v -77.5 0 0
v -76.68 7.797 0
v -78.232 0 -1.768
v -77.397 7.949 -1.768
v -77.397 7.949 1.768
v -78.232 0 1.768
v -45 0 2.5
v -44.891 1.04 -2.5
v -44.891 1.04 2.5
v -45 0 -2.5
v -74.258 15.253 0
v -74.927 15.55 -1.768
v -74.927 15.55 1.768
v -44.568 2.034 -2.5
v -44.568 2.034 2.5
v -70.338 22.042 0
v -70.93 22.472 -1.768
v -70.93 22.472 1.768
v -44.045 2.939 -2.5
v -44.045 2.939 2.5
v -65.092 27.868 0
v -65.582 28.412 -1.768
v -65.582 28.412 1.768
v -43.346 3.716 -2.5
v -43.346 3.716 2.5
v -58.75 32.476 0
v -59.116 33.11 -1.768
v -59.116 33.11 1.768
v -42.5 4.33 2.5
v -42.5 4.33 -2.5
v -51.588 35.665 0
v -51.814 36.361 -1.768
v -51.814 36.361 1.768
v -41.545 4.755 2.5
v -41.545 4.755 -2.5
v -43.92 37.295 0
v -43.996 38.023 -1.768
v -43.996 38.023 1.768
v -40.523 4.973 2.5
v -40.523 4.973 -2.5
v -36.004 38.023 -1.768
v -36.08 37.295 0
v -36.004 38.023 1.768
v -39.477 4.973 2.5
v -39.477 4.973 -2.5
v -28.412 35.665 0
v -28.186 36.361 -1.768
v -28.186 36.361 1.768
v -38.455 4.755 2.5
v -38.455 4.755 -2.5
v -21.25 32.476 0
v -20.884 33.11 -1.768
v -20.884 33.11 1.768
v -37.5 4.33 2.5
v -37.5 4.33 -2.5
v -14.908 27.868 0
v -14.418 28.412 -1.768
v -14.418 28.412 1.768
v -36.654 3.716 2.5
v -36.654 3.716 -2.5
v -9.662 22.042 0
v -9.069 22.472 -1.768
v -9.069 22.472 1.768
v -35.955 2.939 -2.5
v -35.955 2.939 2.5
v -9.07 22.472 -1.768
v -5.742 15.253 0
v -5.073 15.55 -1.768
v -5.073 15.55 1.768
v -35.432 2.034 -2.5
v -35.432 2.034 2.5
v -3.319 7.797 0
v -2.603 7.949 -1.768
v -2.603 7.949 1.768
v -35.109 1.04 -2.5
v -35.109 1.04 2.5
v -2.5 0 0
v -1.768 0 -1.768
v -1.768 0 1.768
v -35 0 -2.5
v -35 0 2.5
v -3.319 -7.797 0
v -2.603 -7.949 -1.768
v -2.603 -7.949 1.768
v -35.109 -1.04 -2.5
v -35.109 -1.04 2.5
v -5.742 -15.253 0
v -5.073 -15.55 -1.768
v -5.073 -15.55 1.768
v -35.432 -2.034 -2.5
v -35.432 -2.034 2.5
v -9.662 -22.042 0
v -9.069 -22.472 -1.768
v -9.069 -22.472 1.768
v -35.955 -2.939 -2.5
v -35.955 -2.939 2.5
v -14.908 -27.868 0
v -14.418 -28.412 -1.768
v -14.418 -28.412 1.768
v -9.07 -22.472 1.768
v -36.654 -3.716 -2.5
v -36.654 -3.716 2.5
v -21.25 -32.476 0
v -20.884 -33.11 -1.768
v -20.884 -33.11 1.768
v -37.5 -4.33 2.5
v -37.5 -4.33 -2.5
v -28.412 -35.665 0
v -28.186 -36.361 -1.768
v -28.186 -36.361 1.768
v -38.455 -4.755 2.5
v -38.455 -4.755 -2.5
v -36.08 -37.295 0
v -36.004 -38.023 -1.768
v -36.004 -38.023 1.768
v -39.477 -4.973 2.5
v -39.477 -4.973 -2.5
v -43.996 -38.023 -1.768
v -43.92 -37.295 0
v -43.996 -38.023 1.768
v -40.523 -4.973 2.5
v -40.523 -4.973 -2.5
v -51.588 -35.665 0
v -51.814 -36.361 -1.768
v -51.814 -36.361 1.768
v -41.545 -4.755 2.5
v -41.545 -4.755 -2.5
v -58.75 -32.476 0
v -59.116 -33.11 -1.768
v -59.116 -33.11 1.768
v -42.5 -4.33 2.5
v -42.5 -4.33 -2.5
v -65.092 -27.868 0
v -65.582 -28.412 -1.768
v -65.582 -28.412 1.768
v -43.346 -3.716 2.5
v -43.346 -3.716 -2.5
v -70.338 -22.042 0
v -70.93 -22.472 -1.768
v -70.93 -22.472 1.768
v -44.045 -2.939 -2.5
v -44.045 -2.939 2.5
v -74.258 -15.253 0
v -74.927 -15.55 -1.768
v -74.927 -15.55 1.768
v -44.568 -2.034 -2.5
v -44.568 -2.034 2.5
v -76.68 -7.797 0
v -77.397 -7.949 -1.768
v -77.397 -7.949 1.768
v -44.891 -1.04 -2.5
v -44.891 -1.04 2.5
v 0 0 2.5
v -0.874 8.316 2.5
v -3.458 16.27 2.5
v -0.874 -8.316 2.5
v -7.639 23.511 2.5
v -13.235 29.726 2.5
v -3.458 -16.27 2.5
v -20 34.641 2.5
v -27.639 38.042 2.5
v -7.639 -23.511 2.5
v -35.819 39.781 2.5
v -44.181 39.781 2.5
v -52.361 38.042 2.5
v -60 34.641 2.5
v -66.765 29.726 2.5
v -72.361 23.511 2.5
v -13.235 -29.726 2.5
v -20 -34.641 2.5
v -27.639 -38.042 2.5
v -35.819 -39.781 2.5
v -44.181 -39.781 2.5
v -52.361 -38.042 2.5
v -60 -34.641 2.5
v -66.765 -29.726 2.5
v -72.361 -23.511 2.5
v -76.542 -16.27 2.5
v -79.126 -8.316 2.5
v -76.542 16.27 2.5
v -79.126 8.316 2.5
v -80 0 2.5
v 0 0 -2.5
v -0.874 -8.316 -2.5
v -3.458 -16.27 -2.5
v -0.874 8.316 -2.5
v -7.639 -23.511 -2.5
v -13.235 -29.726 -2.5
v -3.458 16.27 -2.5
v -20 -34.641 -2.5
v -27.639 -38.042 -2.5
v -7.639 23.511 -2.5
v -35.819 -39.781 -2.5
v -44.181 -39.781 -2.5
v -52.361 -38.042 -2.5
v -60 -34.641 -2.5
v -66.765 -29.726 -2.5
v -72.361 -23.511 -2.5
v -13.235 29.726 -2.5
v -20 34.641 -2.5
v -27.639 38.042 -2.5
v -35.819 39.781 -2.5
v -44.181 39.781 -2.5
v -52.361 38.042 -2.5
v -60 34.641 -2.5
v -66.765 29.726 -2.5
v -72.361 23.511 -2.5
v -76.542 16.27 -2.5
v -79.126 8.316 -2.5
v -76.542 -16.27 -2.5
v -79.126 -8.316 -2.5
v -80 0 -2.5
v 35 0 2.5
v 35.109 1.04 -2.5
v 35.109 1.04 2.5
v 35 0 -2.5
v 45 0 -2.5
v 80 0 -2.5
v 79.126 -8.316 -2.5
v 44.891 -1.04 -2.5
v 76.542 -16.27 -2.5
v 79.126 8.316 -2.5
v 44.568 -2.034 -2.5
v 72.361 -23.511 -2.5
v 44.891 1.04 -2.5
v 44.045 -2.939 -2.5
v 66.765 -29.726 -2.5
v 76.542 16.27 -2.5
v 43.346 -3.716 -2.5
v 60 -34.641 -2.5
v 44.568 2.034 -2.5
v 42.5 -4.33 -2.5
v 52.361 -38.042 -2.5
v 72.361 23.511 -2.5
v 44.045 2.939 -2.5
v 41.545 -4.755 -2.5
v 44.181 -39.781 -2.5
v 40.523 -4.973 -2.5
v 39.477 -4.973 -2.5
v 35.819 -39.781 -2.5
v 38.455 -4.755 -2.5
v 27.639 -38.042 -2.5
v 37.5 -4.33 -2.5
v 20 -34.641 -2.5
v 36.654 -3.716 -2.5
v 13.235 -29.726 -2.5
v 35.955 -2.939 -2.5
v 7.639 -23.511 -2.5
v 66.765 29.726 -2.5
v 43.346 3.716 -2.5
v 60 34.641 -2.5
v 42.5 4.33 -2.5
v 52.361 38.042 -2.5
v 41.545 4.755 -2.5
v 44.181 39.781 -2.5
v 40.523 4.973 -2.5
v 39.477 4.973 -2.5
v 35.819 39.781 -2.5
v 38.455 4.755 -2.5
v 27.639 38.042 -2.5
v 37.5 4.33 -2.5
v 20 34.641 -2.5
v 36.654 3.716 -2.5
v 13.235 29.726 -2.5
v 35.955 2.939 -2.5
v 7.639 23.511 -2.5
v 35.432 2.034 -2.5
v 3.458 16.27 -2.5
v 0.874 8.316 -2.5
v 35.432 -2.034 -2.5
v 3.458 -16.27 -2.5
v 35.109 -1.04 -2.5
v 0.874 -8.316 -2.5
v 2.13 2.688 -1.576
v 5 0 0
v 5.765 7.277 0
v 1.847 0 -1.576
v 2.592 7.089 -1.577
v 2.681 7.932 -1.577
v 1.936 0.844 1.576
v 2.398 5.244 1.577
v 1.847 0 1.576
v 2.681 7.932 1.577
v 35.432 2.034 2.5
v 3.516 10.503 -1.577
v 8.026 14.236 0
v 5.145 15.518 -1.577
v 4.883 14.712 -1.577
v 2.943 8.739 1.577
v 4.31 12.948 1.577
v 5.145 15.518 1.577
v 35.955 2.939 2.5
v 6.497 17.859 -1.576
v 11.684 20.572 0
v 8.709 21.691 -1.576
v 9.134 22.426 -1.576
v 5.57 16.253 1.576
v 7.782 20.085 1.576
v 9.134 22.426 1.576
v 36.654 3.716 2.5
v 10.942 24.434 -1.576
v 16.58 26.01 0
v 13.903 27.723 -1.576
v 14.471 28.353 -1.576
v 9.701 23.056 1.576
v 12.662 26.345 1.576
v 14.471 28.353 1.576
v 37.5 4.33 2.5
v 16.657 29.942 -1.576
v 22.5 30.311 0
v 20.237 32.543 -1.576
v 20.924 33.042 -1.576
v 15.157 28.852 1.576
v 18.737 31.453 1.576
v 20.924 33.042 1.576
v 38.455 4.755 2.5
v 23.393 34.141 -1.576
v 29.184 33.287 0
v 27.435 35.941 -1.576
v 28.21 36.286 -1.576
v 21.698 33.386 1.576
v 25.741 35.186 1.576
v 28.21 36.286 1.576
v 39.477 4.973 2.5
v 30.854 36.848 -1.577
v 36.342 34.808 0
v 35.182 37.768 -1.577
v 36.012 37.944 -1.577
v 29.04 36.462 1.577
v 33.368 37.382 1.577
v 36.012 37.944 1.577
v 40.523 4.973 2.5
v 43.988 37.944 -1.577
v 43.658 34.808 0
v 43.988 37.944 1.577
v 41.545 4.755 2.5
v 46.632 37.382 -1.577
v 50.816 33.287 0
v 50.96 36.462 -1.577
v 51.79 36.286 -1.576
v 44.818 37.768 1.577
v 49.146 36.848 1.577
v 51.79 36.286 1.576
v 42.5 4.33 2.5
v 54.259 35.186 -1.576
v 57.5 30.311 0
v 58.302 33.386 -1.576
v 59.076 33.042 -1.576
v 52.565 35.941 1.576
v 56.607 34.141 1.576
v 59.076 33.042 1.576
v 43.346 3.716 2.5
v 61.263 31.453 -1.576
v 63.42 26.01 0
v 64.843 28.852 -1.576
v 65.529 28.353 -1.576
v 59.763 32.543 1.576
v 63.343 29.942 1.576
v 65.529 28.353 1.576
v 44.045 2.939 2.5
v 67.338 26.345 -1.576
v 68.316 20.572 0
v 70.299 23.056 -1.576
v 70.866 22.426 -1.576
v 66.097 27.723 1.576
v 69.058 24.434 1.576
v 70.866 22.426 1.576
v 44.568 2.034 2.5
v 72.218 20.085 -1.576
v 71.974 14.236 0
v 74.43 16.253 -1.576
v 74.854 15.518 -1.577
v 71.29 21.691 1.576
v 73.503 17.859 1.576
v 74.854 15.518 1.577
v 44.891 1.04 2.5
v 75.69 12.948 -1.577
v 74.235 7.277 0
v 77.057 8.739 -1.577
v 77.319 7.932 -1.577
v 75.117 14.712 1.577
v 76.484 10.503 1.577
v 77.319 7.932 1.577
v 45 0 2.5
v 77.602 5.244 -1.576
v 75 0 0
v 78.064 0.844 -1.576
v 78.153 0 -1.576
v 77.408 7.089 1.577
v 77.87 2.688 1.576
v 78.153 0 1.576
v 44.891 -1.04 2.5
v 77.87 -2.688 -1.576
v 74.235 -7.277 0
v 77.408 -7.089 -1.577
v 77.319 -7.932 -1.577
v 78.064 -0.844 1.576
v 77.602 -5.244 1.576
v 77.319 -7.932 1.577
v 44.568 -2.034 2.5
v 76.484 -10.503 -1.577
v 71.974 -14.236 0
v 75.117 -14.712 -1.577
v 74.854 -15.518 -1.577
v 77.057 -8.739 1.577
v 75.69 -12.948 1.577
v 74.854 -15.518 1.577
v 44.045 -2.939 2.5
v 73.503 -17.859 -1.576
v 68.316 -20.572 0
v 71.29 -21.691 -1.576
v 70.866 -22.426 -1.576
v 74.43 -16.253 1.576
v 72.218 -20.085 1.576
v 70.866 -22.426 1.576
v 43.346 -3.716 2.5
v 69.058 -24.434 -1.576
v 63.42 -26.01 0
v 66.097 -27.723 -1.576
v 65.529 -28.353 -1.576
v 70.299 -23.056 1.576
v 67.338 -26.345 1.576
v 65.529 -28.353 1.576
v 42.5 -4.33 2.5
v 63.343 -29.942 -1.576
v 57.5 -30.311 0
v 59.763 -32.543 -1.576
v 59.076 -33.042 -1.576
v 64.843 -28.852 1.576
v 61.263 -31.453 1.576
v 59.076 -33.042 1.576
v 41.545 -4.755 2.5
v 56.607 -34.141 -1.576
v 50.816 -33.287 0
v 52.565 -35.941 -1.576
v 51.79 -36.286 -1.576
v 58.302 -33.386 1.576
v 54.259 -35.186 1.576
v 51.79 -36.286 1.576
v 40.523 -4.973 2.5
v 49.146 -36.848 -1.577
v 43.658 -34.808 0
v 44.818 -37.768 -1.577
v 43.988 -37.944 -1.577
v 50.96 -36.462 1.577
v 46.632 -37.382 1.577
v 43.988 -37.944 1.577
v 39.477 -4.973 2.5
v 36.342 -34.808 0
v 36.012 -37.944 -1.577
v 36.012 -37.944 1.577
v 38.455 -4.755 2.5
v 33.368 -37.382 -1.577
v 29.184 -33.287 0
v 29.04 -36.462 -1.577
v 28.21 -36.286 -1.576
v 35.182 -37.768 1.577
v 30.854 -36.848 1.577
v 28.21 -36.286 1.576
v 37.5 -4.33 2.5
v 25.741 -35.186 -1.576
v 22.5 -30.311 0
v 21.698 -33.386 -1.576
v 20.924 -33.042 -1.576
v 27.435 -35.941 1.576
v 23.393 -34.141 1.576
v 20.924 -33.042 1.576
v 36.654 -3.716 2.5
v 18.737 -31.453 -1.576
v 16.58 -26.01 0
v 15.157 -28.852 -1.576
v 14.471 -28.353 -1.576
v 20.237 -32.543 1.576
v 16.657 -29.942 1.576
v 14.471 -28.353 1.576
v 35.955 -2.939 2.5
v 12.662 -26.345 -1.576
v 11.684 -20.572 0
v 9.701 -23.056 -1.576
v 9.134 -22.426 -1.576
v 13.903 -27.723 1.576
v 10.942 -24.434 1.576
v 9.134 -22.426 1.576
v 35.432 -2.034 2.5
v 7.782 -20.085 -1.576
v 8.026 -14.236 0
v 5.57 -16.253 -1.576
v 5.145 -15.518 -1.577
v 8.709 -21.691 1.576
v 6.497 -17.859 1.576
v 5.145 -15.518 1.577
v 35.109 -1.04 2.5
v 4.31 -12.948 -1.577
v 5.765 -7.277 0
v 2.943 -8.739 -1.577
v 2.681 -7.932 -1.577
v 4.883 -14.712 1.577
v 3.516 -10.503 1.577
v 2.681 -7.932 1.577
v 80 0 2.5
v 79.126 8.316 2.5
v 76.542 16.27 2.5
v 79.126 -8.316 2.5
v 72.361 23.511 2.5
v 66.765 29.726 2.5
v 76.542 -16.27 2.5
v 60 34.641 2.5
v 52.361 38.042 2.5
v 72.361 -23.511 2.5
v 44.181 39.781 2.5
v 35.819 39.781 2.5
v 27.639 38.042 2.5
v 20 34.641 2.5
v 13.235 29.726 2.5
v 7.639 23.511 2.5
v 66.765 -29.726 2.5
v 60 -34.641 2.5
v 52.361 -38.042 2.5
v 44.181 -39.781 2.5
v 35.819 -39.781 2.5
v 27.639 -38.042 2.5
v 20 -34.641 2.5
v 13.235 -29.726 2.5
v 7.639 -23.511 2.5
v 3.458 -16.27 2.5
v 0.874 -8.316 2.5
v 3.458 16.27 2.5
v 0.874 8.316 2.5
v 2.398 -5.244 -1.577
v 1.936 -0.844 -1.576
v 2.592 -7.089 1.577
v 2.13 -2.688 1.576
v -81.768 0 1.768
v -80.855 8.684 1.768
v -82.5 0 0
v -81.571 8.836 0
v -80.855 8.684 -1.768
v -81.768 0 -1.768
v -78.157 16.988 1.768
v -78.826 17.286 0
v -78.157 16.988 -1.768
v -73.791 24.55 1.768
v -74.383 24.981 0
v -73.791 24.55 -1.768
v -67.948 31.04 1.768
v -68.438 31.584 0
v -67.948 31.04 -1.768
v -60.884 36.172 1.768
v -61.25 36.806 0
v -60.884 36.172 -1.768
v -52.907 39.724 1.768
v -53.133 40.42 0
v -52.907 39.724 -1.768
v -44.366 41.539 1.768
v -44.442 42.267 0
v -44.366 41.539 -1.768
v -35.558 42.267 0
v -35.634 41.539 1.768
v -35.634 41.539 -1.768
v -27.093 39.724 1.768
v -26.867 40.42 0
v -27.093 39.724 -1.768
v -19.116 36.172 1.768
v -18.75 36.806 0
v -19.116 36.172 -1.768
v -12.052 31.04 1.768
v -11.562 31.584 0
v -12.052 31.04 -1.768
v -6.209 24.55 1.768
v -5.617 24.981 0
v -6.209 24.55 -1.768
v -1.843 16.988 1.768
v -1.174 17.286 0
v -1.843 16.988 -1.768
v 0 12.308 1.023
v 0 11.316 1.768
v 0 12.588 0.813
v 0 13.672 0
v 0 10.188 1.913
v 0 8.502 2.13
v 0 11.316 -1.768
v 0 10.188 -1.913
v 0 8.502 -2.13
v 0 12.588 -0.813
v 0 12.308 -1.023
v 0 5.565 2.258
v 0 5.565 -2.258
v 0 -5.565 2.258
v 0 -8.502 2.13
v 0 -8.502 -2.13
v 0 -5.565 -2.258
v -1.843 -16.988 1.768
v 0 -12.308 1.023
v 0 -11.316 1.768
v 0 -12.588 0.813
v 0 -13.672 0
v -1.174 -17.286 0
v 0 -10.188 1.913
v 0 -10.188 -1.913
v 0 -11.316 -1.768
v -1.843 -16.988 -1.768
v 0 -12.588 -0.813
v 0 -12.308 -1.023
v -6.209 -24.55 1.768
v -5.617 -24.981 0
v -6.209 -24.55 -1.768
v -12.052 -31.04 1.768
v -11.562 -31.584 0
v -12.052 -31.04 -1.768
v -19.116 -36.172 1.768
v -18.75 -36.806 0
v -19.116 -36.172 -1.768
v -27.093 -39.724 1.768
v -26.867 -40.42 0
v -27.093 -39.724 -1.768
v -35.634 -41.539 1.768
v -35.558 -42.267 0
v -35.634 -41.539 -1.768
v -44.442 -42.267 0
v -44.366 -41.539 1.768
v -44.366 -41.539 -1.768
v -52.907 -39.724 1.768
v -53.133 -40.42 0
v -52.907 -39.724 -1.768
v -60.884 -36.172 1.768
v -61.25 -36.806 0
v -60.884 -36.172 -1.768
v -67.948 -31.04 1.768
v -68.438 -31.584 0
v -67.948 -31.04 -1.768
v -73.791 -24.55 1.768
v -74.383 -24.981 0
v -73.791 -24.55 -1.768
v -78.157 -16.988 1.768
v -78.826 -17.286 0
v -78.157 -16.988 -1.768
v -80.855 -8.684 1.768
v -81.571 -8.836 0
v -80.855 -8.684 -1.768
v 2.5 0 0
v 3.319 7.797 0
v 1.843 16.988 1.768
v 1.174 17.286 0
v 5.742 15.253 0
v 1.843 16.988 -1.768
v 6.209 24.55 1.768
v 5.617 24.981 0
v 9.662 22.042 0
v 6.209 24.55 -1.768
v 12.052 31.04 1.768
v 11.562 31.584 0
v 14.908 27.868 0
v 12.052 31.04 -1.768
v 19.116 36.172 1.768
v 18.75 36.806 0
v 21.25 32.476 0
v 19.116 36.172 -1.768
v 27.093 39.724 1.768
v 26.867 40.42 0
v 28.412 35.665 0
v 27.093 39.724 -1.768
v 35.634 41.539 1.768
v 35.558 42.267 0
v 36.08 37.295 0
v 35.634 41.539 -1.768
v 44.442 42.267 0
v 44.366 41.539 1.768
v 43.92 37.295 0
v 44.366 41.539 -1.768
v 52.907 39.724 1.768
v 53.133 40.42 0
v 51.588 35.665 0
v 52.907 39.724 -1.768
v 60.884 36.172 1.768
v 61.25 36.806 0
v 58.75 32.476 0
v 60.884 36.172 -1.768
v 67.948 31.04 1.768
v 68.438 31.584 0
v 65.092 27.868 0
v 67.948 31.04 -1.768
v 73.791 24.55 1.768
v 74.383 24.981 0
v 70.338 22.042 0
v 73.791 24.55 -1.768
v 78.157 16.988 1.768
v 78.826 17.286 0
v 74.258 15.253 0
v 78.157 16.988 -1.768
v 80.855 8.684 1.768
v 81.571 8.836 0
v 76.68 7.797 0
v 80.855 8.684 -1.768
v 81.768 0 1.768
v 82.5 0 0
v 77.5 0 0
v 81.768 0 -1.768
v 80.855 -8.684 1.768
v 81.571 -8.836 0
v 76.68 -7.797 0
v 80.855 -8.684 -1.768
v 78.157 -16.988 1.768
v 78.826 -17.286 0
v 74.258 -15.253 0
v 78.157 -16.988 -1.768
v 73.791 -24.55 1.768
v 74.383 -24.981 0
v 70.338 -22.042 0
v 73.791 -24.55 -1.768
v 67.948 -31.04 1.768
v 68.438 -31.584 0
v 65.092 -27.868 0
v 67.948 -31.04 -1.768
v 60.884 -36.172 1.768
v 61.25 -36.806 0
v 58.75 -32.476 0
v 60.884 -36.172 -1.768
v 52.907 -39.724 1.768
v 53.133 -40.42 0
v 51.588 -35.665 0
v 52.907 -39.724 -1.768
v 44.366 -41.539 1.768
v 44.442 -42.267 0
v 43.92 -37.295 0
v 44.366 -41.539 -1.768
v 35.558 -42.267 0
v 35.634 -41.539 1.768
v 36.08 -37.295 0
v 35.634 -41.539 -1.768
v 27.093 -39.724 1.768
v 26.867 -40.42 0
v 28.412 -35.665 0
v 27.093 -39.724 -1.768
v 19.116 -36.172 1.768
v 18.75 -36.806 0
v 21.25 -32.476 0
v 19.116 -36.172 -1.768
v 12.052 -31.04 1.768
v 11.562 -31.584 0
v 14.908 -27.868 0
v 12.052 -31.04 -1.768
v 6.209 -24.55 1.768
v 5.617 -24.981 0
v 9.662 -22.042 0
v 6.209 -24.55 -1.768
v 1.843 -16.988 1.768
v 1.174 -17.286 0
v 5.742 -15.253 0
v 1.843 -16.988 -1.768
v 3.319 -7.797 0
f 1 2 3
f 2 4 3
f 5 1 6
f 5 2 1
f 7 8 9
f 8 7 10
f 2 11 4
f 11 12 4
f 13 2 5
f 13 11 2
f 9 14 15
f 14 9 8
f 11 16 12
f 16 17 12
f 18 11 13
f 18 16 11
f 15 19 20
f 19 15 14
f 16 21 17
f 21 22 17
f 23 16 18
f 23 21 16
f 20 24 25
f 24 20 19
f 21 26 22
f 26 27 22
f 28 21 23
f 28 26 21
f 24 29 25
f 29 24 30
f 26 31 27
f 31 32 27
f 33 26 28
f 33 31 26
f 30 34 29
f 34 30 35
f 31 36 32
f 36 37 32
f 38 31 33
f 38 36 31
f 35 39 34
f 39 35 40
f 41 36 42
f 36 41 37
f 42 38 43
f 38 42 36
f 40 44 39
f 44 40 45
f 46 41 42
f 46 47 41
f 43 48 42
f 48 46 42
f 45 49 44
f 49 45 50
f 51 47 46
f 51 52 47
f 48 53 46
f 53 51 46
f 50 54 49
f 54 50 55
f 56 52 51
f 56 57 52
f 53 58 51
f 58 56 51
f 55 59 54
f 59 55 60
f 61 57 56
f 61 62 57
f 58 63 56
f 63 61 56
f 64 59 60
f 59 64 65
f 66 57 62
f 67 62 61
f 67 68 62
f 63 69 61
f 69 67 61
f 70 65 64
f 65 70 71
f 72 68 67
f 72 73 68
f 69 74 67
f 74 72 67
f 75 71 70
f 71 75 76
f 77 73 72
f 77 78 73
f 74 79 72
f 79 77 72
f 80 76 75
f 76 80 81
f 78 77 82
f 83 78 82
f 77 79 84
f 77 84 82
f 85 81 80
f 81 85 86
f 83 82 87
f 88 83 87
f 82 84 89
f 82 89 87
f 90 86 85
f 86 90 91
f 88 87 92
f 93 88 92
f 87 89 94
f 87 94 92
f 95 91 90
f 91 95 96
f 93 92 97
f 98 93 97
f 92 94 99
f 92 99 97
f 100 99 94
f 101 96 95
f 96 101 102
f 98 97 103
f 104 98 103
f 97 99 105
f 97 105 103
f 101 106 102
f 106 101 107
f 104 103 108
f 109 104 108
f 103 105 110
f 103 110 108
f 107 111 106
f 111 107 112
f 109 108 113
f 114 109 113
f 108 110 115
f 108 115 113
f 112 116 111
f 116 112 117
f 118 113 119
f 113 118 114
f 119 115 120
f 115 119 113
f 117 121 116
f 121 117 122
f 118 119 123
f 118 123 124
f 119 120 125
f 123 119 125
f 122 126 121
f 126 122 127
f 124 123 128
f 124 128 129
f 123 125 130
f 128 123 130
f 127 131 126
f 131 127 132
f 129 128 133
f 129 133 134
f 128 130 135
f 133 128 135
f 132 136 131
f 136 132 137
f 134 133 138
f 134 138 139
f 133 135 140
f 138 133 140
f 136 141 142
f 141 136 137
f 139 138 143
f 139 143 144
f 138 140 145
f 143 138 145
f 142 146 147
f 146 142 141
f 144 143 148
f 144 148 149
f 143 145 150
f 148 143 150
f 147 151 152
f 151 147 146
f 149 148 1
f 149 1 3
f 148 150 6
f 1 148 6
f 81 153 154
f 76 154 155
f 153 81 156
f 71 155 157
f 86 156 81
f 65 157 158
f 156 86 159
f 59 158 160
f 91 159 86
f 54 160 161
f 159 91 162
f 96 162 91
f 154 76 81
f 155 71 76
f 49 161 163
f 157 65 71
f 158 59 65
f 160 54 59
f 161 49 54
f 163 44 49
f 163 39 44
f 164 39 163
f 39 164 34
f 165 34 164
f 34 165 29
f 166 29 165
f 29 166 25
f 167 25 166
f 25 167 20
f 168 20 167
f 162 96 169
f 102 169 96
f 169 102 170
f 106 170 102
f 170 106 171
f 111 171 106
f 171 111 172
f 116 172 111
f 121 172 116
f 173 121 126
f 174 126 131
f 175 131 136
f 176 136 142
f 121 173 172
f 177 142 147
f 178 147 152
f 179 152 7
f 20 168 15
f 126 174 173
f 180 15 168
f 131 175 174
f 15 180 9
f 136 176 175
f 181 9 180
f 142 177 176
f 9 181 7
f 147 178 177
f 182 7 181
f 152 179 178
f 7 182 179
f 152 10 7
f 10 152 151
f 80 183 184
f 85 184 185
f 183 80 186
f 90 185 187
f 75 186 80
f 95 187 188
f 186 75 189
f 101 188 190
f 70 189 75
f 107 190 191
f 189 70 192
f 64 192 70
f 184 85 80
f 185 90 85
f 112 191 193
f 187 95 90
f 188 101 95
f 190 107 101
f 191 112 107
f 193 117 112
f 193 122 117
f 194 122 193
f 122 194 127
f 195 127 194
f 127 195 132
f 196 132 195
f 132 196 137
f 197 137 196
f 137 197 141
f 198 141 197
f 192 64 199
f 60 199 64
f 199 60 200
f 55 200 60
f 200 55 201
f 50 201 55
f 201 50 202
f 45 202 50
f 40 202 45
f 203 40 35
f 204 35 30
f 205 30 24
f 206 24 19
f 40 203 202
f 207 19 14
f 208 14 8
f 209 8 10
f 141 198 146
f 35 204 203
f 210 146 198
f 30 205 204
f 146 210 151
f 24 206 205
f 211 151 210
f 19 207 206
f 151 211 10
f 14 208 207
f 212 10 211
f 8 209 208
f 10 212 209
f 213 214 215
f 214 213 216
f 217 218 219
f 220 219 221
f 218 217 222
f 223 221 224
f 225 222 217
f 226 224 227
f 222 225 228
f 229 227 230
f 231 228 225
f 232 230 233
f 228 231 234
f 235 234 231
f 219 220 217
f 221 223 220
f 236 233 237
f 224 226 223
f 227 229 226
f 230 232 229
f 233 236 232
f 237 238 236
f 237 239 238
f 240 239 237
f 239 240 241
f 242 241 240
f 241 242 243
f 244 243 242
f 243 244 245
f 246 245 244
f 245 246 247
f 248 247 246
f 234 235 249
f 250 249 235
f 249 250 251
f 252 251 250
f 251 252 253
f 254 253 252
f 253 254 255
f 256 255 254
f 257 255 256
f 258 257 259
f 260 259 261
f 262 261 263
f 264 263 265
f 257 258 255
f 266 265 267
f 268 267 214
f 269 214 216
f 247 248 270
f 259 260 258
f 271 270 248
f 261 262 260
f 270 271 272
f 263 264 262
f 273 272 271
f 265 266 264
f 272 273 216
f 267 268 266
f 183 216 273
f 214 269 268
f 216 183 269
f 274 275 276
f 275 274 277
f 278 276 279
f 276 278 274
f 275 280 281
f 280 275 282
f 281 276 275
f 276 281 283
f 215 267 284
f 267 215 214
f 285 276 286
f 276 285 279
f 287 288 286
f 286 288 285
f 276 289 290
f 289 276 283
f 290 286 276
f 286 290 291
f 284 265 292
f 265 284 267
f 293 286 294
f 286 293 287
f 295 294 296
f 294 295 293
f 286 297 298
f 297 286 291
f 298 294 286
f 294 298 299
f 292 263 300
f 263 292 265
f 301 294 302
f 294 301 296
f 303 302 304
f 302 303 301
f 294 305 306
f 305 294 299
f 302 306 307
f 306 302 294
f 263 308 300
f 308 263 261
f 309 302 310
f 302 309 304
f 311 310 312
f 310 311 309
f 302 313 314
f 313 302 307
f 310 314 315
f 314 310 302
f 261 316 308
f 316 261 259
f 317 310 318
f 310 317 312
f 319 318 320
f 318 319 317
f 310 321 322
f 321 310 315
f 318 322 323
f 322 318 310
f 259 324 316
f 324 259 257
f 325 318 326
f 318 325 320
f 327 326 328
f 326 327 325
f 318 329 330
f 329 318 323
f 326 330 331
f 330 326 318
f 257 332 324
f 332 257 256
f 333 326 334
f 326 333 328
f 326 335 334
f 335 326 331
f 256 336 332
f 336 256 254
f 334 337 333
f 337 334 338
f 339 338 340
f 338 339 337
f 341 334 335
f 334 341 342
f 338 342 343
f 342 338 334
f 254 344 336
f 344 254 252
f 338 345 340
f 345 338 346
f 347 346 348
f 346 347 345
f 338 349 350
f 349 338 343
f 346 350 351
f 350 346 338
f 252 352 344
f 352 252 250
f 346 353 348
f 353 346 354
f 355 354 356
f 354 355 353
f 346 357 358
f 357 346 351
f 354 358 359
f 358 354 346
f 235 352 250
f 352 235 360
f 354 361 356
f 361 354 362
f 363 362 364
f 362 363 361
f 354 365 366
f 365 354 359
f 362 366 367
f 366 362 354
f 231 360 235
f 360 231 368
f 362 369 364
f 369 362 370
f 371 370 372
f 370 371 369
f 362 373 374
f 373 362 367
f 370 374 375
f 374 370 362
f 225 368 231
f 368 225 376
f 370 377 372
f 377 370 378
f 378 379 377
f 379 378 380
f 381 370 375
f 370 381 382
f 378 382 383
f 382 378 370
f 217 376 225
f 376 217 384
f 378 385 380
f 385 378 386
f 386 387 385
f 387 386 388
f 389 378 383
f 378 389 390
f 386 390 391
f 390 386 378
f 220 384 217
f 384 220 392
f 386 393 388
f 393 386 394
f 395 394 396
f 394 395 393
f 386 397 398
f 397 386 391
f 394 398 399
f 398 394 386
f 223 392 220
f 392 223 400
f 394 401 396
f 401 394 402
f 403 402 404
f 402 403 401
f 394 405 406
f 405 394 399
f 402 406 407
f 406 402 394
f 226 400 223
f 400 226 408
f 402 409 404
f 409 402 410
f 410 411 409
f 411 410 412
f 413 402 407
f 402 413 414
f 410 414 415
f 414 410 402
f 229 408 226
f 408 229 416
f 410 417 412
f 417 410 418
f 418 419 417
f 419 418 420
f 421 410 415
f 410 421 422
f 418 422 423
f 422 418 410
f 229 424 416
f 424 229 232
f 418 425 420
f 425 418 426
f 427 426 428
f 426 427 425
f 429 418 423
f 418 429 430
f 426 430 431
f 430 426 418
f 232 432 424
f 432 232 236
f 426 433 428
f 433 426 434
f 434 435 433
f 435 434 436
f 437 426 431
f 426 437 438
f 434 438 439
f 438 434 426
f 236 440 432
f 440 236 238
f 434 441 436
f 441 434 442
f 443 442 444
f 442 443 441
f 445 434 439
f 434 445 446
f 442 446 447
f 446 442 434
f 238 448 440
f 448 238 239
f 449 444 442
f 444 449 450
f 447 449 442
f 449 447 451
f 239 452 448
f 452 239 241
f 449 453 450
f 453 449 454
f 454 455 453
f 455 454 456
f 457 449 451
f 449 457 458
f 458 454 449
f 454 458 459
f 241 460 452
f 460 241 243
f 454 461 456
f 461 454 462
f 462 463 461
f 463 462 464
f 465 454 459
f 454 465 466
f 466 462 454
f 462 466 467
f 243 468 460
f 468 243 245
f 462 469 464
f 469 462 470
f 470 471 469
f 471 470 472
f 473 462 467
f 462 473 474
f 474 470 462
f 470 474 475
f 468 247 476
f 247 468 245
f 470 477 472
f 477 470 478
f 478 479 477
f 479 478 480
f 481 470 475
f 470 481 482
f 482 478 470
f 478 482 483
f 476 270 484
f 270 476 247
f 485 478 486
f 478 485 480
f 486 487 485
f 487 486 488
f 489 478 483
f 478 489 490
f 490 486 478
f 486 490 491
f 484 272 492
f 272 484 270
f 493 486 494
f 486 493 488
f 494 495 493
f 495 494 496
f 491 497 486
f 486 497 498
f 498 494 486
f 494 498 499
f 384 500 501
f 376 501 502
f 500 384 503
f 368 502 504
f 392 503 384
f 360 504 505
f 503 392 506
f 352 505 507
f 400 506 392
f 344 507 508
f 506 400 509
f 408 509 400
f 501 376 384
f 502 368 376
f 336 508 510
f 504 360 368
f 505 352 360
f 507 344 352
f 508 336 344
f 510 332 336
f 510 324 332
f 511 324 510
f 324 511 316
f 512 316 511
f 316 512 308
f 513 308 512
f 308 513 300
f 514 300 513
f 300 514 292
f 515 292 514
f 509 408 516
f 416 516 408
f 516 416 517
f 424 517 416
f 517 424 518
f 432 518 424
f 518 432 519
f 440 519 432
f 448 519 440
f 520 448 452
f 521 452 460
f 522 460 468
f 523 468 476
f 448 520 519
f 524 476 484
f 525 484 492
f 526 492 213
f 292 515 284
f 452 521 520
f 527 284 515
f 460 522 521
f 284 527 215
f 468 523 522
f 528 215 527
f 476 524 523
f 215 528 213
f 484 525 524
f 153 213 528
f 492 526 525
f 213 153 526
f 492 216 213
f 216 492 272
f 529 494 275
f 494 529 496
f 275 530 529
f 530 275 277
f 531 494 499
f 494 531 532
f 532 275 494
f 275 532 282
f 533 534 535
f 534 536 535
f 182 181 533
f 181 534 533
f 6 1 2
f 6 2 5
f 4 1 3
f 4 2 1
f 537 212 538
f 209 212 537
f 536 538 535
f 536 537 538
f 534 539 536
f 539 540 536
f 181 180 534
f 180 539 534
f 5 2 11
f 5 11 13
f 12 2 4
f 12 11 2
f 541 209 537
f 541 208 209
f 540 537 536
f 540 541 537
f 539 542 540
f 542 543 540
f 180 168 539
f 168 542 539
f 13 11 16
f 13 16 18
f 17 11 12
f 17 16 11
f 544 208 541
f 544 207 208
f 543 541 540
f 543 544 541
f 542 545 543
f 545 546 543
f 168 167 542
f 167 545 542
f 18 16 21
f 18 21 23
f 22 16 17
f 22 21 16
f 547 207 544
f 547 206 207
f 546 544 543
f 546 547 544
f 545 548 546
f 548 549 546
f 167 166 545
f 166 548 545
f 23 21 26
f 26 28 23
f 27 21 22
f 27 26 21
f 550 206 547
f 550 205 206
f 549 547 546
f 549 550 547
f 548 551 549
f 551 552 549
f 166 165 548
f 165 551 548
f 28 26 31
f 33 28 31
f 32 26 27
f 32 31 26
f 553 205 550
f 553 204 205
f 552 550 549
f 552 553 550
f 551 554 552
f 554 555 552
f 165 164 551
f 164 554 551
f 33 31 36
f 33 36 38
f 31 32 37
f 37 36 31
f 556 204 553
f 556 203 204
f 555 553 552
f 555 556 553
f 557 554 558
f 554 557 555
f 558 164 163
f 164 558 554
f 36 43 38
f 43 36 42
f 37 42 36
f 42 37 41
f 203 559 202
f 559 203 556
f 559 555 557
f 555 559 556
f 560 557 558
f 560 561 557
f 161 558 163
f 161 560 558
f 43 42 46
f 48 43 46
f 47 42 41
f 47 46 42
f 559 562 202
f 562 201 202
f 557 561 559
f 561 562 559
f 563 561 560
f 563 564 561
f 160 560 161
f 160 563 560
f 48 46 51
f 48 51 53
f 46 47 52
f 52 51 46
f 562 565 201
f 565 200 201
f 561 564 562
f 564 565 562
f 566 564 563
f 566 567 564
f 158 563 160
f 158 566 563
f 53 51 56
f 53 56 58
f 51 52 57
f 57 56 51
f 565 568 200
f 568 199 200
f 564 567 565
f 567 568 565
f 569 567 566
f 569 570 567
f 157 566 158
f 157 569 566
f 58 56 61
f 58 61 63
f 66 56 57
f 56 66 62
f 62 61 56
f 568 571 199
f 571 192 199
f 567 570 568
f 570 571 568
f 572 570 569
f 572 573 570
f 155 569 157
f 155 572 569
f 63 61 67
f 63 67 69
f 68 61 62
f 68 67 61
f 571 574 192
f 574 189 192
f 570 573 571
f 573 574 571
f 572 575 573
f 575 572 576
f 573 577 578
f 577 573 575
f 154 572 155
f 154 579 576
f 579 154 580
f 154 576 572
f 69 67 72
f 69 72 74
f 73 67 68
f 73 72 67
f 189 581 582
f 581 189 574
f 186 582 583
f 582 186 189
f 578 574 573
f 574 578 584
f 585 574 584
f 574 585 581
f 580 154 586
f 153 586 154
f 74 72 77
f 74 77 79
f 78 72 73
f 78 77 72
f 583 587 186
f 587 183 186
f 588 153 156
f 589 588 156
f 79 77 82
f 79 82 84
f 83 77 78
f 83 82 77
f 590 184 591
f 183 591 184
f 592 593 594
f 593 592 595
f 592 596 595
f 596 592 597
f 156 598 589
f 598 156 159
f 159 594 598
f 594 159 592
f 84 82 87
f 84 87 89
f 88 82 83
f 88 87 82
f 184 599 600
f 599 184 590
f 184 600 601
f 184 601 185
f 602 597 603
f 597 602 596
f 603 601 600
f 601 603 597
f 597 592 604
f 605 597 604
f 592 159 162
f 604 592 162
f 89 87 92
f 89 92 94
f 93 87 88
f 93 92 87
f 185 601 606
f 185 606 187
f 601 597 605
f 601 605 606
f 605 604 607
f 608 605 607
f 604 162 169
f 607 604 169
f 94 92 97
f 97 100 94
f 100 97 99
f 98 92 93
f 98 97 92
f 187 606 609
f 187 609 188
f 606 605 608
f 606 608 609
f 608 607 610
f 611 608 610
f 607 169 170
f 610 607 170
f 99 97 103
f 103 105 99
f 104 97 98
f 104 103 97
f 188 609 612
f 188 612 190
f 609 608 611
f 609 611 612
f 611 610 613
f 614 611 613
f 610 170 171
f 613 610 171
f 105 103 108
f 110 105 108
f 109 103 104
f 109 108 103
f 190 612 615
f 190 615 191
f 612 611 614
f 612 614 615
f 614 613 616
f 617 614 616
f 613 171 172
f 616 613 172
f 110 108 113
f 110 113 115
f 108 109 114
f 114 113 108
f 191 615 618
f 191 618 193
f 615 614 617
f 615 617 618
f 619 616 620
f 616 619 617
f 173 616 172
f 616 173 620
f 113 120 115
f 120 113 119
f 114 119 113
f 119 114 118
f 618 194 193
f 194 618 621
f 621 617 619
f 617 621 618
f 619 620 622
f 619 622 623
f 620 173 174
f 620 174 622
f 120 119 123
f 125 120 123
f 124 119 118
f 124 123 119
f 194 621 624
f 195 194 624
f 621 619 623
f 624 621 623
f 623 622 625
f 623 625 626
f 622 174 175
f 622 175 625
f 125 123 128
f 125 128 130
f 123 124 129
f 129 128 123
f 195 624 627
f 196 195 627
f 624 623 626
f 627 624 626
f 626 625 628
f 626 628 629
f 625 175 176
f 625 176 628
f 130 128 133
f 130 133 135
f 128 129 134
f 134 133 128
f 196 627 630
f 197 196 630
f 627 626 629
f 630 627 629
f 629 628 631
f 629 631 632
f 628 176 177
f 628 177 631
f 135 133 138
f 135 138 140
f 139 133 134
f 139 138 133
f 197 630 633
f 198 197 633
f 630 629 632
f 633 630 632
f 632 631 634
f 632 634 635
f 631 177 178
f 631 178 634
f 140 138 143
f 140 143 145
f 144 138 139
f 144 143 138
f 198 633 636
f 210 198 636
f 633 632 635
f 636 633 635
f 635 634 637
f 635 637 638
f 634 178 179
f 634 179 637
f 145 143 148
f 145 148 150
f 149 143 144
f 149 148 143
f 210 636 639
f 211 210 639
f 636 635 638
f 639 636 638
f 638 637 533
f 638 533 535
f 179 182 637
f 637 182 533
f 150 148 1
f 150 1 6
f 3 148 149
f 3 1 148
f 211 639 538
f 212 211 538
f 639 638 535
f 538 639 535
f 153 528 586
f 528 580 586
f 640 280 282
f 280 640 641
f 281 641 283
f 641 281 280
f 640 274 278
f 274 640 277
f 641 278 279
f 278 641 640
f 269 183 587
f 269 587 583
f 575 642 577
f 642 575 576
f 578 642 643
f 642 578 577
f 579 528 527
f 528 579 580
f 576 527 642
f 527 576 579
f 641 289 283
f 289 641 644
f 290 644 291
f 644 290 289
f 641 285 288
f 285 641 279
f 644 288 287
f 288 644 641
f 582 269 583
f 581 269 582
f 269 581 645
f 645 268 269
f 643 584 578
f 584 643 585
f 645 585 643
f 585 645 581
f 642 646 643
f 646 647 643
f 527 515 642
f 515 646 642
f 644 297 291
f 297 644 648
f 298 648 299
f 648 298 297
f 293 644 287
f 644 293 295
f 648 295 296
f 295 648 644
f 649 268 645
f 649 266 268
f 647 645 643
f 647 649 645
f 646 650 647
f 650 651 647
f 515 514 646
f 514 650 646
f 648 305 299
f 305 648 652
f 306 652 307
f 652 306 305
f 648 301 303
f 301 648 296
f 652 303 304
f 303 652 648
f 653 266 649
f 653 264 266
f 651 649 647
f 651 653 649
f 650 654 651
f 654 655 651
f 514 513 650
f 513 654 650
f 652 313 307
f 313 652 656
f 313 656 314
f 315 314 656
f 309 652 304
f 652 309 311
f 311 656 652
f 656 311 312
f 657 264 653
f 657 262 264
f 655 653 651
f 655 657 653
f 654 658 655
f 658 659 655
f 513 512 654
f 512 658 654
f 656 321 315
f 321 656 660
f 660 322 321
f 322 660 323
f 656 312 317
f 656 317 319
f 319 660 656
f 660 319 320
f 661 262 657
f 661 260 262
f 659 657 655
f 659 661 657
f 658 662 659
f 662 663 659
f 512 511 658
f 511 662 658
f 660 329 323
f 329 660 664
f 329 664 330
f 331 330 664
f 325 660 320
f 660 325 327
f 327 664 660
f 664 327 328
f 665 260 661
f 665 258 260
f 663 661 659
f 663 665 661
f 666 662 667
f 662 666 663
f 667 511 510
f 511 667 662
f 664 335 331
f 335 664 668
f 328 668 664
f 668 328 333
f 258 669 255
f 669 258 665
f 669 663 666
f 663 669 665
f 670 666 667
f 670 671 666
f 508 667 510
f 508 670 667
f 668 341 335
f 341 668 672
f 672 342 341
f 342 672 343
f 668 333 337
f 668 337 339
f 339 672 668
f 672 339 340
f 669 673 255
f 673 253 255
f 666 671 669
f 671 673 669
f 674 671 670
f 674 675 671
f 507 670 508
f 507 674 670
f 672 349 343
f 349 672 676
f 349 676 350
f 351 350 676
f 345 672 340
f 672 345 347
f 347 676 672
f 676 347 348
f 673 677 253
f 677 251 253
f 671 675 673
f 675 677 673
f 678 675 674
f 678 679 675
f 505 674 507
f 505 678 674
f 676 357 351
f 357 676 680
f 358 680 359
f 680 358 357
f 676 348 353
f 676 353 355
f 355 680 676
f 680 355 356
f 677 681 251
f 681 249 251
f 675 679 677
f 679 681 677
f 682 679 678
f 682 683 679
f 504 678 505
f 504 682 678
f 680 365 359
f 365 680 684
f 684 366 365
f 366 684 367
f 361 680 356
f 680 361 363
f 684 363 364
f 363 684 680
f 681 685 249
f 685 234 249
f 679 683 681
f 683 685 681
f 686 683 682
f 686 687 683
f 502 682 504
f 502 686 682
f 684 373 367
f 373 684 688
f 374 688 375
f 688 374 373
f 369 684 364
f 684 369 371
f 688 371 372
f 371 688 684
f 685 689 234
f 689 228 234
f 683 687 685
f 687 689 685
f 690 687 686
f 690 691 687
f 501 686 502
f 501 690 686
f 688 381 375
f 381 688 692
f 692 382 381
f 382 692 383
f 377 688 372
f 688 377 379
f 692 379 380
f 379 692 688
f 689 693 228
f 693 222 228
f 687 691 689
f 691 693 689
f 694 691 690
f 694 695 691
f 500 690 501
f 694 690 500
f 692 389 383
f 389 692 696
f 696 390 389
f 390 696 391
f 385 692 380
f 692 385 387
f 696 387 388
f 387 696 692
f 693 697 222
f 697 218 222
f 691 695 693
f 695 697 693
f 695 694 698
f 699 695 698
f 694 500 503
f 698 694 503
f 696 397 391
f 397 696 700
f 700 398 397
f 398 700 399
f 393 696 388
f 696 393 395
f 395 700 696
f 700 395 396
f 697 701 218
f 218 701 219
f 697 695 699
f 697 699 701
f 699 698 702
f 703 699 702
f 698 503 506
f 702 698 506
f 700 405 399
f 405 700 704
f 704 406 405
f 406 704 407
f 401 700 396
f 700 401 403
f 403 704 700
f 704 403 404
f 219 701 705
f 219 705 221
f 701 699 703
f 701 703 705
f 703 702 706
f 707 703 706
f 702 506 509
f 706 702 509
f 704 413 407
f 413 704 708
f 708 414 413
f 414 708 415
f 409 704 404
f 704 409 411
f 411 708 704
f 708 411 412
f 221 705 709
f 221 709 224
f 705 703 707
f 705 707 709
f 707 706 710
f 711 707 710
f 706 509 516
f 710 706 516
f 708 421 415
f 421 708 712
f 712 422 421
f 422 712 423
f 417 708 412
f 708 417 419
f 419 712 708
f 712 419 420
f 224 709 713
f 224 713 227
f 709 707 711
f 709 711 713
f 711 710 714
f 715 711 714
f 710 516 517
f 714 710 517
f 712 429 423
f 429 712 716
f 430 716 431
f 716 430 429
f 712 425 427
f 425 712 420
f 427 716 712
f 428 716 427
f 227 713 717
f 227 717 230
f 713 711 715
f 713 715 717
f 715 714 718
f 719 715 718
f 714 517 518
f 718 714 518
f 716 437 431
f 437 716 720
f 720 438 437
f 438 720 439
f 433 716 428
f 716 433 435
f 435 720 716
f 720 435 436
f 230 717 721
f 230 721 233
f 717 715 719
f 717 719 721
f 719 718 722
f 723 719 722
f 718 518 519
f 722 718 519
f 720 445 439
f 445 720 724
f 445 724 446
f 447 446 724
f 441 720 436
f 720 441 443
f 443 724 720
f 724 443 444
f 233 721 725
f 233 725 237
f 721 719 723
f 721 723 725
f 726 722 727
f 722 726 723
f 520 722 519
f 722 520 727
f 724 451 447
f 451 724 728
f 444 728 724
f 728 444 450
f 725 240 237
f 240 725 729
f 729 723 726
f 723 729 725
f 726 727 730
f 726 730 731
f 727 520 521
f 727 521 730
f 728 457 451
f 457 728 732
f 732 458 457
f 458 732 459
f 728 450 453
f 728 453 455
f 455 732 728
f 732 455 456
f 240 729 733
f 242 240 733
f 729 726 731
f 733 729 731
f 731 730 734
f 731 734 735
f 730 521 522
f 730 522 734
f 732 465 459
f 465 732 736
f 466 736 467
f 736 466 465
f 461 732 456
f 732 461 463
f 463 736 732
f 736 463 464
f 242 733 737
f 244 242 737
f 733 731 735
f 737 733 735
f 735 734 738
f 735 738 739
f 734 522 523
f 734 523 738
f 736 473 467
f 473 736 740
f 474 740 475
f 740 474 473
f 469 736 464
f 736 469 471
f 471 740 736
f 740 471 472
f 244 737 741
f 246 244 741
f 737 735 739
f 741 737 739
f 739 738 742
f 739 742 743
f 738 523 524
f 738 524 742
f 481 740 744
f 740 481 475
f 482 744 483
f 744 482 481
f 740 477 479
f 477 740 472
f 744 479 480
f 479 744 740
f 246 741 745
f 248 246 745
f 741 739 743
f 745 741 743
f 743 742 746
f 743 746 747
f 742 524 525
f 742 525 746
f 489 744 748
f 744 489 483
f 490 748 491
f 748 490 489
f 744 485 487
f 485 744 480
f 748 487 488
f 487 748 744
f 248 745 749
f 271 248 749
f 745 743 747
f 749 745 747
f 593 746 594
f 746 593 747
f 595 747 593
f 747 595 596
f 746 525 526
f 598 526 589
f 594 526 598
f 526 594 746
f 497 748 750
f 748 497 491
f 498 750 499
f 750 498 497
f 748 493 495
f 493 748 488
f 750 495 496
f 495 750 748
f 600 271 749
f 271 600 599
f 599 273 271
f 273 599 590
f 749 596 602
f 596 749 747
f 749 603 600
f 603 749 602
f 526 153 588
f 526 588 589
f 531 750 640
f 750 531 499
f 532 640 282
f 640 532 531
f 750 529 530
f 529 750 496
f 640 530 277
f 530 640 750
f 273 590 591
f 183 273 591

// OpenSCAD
e=5; // radio del eje
r=40; // radio de la rueda
h=5; // alto de la rueda

// Haremos una rueda con el hueco circular

translate([-r,0 , 0])
rotate_extrude()
	translate([e,0 ,0 ])
	{
		difference() {
			translate([0,-h/2 , 0])
				square([r-e, h]);
			translate([r-e,0 ,0 ])
				circle(r=h/2)	;
		}
		

	}

// Haremos una rueda con el hueco triangular

translate([r,0 ,0 ])
rotate_extrude()
{

	translate([e,0 ,0 ])
	{
		difference() {
			translate([0,-h/2 , 0])
				square([r-e, h]);
			translate([r-e-h,0 ,0 ])
				polygon([[0,0],[h,-h/2],[h,h/2]]);
		}
		

	}
	

}

// Añadimos las juntas toricas
translate([-r,0 , 0])
color("grey")
	rotate_extrude()
		translate([r,0 ,0 ])
			circle(d=h);

translate([r,0 , 0])
color("grey")
	rotate_extrude()
		translate([r,0 ,0 ])
			circle(d=h);			
